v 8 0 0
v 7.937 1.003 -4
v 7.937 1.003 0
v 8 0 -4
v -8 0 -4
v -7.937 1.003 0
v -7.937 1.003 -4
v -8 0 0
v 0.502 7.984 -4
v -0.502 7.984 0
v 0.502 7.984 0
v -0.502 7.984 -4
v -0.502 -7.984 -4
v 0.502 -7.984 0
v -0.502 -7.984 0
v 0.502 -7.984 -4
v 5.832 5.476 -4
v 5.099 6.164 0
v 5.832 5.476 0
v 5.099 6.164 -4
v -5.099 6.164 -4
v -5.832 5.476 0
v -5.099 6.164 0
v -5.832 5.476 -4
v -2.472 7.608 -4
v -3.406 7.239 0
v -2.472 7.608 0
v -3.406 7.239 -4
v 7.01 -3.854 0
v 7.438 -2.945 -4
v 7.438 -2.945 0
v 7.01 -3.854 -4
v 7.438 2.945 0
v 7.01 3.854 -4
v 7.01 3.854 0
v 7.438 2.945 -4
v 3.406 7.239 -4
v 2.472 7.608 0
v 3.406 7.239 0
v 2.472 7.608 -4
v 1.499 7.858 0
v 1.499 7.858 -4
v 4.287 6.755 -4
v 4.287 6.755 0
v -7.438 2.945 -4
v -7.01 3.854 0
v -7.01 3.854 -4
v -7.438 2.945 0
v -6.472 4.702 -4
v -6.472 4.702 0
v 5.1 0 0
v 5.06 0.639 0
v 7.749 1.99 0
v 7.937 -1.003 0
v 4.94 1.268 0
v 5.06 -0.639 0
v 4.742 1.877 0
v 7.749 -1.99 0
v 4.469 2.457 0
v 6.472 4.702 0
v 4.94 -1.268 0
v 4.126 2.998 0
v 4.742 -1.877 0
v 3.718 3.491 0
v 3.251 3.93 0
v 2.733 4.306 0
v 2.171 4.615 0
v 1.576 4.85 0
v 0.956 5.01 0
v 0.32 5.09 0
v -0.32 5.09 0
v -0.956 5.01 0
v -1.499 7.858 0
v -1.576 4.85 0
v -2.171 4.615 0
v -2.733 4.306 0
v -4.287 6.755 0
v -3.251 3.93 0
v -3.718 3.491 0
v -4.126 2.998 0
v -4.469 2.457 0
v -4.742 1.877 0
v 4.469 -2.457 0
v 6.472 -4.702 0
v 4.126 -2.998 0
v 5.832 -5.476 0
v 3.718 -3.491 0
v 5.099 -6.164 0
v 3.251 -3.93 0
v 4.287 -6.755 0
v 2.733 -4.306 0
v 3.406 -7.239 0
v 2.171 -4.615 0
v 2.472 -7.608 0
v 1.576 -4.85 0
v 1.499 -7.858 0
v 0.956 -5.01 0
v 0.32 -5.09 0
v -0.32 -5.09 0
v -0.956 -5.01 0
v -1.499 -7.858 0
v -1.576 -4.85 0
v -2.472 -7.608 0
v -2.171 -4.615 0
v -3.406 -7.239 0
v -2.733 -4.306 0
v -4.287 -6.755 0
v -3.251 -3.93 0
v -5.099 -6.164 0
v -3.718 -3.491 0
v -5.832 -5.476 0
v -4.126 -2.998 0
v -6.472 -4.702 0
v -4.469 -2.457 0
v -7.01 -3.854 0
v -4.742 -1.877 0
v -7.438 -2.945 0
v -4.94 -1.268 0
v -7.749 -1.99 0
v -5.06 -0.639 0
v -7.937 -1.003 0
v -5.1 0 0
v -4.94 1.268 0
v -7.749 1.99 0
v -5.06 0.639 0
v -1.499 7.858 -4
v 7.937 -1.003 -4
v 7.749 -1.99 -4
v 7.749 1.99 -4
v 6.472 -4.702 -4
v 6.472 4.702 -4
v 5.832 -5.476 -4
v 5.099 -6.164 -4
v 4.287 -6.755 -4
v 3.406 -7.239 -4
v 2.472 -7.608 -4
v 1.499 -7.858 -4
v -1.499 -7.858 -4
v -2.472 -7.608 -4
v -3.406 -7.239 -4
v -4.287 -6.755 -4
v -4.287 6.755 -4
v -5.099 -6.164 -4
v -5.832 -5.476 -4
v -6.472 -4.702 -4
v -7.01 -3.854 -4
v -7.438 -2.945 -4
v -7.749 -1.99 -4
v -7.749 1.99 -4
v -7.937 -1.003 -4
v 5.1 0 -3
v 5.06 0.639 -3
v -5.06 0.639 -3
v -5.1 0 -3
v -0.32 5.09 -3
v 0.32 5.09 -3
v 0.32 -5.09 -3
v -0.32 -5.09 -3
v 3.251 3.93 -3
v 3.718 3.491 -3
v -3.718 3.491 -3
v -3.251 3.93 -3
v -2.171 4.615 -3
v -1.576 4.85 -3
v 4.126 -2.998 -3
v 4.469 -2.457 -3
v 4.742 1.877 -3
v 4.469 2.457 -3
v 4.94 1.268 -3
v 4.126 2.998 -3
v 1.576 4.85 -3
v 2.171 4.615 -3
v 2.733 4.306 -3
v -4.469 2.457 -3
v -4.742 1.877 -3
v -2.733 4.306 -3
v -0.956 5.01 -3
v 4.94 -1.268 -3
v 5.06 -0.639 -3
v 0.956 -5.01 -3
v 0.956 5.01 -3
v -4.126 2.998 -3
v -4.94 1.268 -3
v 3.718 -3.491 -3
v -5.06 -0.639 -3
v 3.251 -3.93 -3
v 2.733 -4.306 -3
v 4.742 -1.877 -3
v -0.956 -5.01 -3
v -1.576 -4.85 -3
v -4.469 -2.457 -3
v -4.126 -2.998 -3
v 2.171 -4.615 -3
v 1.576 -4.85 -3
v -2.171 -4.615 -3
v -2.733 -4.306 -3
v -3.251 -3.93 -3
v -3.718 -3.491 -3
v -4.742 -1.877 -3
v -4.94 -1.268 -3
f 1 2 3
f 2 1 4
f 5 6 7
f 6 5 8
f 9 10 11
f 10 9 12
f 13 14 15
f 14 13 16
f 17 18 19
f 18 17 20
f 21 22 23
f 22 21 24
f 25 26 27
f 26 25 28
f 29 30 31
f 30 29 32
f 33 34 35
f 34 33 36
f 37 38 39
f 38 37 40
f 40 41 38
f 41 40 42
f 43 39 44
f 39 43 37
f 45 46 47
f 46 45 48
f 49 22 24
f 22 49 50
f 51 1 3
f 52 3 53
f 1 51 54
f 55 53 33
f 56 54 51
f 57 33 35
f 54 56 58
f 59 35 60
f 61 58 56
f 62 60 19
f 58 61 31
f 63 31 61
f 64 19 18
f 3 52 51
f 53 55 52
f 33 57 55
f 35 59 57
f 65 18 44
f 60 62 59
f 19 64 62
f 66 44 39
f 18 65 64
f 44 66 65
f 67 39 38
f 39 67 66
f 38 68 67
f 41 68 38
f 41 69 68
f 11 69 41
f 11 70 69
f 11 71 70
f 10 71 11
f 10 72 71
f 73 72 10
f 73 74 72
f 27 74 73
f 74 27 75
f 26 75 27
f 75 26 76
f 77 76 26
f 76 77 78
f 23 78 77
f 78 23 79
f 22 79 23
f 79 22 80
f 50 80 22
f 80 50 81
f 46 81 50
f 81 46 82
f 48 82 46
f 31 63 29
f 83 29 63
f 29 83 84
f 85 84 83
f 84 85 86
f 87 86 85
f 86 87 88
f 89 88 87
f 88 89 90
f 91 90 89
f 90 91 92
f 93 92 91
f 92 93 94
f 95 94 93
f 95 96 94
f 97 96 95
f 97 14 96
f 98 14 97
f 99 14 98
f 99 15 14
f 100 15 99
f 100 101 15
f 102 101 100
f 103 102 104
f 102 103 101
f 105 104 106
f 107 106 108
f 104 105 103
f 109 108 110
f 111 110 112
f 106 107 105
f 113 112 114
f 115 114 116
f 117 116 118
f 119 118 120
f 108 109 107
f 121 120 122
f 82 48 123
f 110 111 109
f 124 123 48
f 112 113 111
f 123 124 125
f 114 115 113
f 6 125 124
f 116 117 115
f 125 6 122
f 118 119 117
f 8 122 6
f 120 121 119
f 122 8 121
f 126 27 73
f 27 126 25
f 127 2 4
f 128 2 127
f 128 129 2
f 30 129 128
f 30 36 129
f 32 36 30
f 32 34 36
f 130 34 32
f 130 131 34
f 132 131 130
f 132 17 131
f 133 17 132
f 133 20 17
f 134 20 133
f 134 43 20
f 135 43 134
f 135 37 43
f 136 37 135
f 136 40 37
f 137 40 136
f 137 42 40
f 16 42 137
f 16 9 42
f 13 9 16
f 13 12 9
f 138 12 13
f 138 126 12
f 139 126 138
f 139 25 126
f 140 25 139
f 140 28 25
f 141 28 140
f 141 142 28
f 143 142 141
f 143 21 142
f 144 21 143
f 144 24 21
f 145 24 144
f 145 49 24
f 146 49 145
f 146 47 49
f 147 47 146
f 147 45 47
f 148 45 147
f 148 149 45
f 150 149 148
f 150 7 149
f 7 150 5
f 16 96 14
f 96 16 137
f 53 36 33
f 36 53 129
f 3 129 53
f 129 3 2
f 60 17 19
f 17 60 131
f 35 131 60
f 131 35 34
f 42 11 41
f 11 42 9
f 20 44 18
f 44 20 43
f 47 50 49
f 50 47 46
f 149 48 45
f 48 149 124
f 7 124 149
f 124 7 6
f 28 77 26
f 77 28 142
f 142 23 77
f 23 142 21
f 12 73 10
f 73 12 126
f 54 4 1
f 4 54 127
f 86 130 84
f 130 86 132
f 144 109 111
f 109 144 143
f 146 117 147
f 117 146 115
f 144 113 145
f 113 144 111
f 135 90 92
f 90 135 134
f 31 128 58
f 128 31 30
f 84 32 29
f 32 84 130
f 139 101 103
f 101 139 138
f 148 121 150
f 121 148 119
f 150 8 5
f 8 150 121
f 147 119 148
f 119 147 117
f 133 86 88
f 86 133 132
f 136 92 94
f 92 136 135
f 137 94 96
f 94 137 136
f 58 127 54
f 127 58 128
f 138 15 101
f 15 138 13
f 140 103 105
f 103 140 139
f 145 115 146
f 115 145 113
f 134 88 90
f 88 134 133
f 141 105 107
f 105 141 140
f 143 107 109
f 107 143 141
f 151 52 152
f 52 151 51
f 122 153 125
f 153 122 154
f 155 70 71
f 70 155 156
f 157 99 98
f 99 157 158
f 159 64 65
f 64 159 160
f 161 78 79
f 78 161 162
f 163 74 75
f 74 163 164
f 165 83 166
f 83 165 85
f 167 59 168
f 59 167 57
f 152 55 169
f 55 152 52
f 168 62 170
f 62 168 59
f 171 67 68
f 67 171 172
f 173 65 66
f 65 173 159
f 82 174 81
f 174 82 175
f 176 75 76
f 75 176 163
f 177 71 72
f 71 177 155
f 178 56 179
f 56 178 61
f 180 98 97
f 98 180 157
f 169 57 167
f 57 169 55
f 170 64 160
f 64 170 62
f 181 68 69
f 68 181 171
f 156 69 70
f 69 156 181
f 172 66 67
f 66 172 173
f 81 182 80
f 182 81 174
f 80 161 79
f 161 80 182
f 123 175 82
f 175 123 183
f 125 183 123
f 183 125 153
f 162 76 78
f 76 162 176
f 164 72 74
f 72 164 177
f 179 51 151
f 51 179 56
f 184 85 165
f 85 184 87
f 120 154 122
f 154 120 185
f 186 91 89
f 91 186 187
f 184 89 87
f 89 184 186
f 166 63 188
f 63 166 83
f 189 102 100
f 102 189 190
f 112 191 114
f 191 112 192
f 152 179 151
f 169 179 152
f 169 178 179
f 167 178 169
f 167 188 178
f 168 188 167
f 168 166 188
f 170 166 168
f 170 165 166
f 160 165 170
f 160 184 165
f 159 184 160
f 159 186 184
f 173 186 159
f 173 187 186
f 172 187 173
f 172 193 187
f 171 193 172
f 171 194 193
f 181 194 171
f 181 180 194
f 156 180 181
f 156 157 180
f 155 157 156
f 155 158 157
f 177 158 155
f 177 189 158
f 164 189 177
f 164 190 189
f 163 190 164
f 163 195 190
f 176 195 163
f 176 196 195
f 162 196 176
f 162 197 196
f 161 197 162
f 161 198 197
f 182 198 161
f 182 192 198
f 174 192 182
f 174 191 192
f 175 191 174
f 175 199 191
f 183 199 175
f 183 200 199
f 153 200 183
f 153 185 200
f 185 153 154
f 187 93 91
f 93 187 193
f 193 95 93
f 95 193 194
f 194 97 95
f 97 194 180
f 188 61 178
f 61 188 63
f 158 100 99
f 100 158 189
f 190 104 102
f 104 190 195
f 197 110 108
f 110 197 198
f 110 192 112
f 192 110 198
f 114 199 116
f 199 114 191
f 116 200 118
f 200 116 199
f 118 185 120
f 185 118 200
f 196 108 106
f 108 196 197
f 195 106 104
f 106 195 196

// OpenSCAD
$fn = 50;


difference() {
	union() {
		translate(v = [0, 0, -4.0000000000]) {
			cylinder(h = 4, r = 8.0000000000);
		}
	}
	union() {
		#translate(v = [0, 0, -3.0000000000]) {
			cylinder(h = 3, r = 5.1000000000);
		}
	}
}
